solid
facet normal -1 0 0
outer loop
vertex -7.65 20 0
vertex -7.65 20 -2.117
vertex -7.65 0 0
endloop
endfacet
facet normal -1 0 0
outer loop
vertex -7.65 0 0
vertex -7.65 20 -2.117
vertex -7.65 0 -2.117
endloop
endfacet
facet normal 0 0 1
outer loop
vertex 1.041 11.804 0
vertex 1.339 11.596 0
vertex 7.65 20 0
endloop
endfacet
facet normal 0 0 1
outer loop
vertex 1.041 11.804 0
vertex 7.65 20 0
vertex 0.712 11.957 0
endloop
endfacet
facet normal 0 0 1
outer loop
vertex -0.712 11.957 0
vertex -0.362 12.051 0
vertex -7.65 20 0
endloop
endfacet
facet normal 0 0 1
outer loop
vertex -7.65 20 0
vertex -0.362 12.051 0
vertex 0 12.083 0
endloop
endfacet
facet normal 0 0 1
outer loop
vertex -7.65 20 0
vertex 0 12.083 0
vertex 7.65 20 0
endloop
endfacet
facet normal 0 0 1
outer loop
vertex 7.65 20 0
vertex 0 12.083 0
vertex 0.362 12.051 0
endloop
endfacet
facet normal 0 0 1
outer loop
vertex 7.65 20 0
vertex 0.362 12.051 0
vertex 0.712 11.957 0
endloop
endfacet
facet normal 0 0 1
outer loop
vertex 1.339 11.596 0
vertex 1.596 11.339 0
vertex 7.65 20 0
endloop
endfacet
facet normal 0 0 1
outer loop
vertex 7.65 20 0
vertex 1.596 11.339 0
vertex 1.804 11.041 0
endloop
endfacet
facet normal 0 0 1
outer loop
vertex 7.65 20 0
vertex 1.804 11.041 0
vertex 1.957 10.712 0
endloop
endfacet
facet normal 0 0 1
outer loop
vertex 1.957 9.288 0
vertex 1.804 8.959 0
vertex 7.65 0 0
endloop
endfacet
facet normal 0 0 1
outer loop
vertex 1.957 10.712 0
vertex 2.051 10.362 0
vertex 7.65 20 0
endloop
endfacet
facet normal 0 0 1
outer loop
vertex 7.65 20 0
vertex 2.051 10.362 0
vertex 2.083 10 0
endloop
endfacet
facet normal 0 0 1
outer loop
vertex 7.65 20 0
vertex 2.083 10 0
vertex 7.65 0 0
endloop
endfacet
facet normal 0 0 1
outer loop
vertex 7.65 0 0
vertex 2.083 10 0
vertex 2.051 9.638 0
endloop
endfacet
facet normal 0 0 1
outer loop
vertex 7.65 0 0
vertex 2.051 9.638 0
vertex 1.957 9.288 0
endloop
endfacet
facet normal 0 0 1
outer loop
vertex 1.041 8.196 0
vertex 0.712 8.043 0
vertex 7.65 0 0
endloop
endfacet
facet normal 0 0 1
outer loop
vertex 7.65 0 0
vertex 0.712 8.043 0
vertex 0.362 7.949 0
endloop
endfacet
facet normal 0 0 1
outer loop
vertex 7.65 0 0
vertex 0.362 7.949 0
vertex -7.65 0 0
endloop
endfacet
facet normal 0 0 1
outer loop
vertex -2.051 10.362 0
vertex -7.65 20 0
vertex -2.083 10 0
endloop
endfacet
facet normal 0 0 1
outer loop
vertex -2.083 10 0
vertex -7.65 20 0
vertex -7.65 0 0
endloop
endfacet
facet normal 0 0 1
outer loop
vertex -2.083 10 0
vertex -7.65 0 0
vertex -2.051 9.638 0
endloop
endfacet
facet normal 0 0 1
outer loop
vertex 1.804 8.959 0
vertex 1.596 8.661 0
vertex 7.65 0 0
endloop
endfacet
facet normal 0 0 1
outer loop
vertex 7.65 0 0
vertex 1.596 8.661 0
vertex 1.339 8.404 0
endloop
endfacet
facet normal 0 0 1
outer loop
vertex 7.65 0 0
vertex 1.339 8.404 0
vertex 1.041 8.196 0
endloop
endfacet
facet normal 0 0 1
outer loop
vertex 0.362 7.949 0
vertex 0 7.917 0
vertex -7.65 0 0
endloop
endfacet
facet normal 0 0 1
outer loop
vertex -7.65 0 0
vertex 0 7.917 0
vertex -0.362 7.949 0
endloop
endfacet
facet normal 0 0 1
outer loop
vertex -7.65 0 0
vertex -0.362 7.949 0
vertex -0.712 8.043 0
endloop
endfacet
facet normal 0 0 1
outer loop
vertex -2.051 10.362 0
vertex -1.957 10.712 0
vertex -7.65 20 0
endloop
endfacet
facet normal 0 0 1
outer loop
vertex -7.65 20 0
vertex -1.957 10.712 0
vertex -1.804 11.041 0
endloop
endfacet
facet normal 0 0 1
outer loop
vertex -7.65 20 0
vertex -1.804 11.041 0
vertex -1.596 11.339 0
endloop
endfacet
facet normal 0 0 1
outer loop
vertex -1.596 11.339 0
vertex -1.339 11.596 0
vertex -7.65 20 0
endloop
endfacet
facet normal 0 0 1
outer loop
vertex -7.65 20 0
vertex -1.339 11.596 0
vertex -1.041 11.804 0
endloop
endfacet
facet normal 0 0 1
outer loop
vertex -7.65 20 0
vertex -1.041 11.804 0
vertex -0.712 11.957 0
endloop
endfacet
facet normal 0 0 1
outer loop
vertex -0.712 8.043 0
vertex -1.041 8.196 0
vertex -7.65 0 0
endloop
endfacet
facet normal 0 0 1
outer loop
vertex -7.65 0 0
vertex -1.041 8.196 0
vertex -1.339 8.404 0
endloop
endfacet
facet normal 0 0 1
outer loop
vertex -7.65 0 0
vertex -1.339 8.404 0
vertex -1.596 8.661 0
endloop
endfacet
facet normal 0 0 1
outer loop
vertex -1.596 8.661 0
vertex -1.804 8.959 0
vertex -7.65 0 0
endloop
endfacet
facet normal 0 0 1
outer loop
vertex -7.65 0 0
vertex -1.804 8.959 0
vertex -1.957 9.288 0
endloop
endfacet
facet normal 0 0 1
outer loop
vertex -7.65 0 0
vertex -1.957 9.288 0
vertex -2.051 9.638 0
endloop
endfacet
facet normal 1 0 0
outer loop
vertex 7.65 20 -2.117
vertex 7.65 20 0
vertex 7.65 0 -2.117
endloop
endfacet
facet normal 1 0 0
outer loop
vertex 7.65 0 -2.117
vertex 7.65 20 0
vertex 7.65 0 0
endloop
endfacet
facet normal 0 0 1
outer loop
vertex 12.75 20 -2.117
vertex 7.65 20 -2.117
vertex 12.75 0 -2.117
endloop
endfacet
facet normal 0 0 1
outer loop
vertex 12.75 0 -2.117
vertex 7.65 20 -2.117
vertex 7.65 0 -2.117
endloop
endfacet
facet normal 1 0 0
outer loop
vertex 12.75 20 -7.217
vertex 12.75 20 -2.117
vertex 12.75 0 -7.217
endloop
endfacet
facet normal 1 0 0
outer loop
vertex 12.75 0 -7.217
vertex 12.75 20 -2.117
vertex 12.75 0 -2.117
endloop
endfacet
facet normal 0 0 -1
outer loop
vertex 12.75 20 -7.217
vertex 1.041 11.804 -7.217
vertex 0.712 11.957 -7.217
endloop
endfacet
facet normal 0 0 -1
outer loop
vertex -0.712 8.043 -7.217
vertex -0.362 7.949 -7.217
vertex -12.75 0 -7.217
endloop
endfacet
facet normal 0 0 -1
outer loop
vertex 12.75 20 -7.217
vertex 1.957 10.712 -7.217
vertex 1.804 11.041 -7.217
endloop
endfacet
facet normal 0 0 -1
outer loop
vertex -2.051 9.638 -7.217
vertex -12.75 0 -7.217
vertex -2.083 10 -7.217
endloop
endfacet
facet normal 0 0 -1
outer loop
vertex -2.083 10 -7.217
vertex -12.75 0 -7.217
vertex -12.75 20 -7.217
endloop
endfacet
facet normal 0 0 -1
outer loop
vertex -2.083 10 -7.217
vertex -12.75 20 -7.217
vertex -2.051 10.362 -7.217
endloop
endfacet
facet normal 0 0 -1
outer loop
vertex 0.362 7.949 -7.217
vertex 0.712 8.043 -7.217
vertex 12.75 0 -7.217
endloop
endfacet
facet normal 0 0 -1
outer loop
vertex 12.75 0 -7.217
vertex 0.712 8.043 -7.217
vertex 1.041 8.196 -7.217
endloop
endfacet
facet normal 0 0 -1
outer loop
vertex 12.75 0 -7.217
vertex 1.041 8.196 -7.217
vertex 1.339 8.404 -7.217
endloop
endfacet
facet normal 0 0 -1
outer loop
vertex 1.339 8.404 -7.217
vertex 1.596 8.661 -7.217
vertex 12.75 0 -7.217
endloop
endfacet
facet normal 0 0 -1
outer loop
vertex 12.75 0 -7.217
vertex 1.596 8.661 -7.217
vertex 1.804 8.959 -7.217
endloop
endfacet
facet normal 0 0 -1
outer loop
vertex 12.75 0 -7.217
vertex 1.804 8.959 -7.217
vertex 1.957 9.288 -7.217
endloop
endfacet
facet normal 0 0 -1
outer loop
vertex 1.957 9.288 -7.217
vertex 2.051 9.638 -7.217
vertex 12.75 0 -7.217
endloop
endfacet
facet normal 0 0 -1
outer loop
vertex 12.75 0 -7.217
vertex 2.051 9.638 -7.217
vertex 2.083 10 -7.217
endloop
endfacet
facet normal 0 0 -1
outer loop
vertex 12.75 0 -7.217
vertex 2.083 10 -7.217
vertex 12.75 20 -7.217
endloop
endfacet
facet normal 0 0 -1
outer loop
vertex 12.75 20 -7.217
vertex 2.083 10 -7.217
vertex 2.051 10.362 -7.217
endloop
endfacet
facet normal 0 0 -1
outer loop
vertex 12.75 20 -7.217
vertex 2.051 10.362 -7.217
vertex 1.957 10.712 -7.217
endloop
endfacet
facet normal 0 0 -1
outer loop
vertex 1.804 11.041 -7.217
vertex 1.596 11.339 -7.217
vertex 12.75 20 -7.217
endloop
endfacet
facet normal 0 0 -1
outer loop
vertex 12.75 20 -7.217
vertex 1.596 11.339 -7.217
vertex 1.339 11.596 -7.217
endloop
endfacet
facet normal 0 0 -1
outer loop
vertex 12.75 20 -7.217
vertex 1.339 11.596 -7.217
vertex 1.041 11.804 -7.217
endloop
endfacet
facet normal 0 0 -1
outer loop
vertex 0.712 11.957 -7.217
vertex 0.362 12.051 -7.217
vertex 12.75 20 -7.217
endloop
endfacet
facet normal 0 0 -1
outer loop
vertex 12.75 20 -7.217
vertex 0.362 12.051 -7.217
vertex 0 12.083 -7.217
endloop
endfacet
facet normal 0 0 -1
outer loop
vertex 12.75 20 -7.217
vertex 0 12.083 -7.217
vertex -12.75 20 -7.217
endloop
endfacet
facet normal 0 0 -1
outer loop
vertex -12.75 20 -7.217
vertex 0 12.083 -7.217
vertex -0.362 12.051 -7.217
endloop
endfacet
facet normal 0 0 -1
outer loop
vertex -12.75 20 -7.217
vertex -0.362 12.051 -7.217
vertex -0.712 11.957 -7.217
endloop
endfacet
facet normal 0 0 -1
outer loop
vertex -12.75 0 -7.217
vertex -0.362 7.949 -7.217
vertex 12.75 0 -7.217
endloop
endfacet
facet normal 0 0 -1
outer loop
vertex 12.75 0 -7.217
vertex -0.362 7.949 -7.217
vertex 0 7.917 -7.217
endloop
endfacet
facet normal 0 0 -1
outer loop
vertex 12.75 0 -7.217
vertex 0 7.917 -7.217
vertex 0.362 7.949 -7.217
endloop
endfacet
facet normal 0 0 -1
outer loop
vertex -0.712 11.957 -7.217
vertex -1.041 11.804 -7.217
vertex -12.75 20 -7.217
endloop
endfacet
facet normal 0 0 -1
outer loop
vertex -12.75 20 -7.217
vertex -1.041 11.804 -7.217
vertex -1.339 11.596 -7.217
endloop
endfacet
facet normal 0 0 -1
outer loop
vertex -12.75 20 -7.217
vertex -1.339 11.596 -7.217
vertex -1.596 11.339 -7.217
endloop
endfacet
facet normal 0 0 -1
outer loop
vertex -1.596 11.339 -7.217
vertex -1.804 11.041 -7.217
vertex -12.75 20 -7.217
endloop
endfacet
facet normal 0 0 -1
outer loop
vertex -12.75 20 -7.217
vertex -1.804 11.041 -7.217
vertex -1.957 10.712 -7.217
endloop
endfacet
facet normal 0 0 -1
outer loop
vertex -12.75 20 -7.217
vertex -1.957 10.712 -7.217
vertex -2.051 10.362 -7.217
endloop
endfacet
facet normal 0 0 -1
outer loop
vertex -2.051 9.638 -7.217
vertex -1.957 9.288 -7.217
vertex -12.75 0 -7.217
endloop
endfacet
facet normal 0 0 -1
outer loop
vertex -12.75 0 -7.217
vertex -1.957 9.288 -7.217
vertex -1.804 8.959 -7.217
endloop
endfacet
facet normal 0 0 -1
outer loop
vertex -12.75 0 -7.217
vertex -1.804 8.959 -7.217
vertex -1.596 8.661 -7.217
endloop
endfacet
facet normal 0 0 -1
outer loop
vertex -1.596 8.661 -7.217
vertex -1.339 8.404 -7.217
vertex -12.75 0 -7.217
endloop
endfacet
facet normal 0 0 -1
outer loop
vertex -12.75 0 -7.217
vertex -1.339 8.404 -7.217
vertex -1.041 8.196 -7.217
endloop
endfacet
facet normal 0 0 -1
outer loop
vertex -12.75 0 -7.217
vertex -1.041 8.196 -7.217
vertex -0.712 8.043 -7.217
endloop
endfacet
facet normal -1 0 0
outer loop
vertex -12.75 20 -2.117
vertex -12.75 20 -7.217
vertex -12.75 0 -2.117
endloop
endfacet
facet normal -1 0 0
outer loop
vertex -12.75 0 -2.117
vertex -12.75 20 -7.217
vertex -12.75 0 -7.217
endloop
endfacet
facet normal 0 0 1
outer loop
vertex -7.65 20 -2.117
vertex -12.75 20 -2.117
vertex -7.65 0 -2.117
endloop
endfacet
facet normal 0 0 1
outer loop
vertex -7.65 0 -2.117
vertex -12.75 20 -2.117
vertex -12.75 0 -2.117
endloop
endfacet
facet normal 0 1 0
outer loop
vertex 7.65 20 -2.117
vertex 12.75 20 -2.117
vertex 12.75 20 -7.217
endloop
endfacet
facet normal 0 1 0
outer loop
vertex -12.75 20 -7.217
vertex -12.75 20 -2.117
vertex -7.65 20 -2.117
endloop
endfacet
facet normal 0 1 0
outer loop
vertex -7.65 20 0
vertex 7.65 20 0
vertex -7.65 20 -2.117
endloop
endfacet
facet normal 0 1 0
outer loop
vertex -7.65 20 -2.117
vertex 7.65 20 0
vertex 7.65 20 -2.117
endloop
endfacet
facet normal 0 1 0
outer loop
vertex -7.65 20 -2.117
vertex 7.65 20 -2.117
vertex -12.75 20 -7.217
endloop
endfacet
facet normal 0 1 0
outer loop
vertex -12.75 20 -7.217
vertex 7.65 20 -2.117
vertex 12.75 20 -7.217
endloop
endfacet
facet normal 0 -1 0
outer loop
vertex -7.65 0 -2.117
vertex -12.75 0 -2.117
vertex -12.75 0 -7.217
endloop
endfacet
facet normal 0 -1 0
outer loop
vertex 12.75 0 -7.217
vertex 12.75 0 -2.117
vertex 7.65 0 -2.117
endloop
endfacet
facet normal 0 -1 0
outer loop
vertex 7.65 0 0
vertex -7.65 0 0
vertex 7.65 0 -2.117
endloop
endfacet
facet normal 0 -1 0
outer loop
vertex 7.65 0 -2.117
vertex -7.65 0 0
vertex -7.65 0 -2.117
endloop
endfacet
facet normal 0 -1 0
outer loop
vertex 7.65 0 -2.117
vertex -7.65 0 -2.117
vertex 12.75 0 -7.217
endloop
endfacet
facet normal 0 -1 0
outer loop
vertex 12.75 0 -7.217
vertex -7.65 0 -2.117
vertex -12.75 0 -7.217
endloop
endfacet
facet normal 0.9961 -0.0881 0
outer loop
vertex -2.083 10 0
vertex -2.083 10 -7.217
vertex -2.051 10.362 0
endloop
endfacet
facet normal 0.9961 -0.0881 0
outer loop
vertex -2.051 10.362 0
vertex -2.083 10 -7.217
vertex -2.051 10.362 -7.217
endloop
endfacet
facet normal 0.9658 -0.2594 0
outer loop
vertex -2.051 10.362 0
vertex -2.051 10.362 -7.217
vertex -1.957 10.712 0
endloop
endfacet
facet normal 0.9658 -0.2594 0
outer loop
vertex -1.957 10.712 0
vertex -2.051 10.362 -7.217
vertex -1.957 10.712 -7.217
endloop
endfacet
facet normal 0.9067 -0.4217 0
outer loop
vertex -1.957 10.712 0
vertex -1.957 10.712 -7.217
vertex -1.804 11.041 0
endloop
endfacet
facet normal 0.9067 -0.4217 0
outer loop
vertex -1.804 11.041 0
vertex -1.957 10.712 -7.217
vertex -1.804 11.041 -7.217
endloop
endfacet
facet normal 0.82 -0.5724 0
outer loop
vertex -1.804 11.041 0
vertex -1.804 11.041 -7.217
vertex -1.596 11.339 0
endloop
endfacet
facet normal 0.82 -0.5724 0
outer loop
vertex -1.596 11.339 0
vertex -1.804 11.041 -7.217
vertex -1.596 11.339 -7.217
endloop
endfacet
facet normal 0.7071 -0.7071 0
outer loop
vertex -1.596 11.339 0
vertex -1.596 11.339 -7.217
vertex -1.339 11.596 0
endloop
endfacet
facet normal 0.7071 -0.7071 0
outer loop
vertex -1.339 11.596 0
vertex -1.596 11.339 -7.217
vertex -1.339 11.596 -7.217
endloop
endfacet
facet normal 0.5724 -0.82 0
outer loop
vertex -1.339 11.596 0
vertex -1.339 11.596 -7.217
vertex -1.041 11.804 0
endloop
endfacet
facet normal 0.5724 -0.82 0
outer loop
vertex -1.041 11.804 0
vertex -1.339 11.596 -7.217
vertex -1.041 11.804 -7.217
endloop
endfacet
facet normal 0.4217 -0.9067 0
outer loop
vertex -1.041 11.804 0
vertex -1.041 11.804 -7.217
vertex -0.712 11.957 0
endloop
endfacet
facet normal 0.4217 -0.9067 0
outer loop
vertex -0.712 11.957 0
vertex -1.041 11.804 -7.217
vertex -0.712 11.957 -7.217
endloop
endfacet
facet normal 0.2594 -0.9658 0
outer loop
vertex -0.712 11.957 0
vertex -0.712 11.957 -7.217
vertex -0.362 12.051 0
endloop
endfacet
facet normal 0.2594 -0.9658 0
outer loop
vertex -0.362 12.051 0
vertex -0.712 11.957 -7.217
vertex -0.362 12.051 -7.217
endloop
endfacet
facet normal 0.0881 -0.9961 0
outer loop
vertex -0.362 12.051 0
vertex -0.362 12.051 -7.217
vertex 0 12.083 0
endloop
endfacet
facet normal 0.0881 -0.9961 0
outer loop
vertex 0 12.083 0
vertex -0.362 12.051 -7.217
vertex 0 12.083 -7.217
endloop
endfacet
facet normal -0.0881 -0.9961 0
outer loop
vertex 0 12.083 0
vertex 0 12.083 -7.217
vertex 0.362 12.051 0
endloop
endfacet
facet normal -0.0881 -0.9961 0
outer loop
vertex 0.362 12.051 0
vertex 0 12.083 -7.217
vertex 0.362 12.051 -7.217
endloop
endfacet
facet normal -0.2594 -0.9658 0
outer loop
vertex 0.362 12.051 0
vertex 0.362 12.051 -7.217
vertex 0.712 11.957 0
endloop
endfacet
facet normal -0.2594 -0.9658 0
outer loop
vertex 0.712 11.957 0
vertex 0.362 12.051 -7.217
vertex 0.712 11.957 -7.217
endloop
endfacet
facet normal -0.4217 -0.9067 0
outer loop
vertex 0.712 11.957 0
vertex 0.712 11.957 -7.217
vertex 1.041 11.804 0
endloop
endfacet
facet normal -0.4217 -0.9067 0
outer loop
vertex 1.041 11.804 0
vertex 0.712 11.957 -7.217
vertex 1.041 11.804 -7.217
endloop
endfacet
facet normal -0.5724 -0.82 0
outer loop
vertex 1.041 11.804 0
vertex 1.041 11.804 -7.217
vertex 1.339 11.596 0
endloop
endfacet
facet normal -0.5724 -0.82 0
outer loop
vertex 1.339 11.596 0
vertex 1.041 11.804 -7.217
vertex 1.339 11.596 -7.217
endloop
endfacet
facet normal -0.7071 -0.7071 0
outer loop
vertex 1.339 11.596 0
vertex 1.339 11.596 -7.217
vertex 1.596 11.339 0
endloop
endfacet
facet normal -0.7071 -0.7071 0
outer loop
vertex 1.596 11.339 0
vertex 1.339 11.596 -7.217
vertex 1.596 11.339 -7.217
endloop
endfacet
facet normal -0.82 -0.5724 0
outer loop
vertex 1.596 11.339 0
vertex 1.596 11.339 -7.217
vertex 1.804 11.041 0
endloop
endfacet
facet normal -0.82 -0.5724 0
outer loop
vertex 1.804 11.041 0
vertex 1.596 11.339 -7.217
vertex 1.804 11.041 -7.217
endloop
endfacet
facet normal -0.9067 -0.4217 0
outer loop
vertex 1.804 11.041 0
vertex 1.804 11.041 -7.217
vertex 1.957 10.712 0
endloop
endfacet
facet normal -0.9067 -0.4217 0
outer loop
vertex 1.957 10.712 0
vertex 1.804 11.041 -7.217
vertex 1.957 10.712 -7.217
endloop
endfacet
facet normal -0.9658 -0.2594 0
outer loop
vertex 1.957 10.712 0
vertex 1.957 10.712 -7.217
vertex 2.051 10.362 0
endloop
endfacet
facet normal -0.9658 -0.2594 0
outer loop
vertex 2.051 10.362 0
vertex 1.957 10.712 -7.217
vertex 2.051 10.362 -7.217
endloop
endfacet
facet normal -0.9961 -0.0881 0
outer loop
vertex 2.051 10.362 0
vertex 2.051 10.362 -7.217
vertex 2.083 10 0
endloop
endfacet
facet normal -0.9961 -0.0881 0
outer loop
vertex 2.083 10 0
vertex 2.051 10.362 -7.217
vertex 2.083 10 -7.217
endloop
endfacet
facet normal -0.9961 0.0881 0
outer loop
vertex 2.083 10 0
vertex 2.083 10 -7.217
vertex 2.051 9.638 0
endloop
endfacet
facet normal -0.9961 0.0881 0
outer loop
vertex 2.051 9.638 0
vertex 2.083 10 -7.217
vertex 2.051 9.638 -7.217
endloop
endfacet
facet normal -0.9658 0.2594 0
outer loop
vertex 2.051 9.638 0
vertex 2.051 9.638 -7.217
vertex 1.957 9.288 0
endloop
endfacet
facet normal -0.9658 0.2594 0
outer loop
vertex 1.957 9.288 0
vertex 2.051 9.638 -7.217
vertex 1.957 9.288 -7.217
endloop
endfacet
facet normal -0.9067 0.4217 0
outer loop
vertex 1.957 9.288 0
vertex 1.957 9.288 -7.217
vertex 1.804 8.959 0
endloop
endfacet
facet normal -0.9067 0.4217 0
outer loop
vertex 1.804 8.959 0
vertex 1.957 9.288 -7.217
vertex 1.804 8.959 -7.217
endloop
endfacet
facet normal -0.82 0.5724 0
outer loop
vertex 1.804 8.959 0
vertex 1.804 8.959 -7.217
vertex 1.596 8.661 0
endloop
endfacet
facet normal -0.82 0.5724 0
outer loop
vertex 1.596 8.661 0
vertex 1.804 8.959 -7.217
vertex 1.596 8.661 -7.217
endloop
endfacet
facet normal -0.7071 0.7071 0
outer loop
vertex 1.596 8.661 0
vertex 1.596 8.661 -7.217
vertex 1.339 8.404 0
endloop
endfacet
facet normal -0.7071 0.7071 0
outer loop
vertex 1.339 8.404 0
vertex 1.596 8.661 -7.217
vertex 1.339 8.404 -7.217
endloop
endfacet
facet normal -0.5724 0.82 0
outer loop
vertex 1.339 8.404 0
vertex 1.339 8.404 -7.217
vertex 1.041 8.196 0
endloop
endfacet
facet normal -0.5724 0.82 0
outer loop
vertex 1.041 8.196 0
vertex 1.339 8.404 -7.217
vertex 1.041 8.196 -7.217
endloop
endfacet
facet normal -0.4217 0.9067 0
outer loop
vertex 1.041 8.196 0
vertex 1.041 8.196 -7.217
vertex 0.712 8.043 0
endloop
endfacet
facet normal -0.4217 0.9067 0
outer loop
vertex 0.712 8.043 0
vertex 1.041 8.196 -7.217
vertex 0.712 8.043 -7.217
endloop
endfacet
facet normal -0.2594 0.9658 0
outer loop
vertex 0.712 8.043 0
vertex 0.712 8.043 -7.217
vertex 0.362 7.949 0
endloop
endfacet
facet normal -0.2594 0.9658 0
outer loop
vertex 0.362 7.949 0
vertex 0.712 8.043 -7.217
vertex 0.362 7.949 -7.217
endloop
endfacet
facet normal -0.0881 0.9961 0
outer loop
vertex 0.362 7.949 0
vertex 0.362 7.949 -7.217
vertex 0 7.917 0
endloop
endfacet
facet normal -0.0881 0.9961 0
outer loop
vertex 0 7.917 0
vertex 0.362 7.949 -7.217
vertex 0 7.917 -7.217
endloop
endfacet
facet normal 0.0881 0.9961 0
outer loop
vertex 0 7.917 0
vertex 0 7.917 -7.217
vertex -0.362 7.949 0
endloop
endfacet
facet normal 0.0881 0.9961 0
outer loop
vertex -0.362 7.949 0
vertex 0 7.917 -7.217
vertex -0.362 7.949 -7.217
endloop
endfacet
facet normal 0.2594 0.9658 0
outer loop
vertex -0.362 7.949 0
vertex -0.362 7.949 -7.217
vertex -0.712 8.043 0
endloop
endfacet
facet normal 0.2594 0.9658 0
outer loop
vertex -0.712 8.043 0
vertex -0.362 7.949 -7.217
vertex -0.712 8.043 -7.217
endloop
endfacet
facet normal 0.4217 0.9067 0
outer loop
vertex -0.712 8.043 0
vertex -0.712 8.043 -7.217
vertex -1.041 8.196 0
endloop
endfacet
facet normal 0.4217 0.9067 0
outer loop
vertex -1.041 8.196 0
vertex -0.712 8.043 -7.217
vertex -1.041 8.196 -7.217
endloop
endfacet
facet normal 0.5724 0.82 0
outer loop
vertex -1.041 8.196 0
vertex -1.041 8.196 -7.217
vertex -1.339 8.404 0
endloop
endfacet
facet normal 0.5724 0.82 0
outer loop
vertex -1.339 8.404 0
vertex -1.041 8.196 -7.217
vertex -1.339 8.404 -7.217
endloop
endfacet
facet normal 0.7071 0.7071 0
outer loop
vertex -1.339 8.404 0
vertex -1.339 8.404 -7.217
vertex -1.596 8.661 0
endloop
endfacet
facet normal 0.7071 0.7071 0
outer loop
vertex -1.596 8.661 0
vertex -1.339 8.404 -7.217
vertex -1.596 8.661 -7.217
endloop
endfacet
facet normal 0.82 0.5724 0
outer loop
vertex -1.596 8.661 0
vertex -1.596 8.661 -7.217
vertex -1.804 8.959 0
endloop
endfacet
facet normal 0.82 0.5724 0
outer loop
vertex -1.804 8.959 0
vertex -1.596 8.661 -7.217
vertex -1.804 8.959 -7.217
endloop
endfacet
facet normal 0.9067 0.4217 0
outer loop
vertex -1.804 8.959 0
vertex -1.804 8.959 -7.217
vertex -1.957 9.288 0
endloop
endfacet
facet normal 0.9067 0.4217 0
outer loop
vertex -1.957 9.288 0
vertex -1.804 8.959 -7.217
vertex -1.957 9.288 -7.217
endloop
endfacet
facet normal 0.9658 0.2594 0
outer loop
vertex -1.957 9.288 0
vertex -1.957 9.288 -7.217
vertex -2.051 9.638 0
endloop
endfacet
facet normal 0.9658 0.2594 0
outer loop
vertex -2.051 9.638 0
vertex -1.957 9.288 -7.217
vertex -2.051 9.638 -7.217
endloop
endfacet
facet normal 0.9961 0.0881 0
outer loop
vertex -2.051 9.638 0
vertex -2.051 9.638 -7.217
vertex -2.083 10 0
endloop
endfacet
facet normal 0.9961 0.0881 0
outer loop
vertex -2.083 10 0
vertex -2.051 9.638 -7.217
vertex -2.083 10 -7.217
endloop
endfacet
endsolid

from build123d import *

# Parameters (mm, degrees)
BOSS_EXTRUDE1_DEPTH = 20
SKETCH2_R           = 2.0828
CUT_EXTRUDE1_DEPTH  = 25.791990194


with BuildPart() as part:
    # Sketch1 → Boss-Extrude1 (new body)
    with BuildSketch(Plane(origin=(0, 0, 0), x_dir=(1, 0, 0), z_dir=(0, 1, 0))):
        Polygon((7.65, 0), (-7.65, 0), (-7.65, 2.116666667), (-12.75, 2.116666667), (-12.75, 7.216666667), (12.75, 7.216666667), (12.75, 2.116666667), (7.65, 2.116666667), align=None)
    extrude(amount=BOSS_EXTRUDE1_DEPTH)

    # Sketch2 → Cut-Extrude1 (cut, through all)
    with BuildSketch(Plane(origin=(0, 0, -7.216666667), x_dir=(-1, 0, 0), z_dir=(0, 0, -1))):
        with Locations((0, 10)):
            Circle(SKETCH2_R)
    extrude(amount=-CUT_EXTRUDE1_DEPTH, mode=Mode.SUBTRACT)


solid = part.part
